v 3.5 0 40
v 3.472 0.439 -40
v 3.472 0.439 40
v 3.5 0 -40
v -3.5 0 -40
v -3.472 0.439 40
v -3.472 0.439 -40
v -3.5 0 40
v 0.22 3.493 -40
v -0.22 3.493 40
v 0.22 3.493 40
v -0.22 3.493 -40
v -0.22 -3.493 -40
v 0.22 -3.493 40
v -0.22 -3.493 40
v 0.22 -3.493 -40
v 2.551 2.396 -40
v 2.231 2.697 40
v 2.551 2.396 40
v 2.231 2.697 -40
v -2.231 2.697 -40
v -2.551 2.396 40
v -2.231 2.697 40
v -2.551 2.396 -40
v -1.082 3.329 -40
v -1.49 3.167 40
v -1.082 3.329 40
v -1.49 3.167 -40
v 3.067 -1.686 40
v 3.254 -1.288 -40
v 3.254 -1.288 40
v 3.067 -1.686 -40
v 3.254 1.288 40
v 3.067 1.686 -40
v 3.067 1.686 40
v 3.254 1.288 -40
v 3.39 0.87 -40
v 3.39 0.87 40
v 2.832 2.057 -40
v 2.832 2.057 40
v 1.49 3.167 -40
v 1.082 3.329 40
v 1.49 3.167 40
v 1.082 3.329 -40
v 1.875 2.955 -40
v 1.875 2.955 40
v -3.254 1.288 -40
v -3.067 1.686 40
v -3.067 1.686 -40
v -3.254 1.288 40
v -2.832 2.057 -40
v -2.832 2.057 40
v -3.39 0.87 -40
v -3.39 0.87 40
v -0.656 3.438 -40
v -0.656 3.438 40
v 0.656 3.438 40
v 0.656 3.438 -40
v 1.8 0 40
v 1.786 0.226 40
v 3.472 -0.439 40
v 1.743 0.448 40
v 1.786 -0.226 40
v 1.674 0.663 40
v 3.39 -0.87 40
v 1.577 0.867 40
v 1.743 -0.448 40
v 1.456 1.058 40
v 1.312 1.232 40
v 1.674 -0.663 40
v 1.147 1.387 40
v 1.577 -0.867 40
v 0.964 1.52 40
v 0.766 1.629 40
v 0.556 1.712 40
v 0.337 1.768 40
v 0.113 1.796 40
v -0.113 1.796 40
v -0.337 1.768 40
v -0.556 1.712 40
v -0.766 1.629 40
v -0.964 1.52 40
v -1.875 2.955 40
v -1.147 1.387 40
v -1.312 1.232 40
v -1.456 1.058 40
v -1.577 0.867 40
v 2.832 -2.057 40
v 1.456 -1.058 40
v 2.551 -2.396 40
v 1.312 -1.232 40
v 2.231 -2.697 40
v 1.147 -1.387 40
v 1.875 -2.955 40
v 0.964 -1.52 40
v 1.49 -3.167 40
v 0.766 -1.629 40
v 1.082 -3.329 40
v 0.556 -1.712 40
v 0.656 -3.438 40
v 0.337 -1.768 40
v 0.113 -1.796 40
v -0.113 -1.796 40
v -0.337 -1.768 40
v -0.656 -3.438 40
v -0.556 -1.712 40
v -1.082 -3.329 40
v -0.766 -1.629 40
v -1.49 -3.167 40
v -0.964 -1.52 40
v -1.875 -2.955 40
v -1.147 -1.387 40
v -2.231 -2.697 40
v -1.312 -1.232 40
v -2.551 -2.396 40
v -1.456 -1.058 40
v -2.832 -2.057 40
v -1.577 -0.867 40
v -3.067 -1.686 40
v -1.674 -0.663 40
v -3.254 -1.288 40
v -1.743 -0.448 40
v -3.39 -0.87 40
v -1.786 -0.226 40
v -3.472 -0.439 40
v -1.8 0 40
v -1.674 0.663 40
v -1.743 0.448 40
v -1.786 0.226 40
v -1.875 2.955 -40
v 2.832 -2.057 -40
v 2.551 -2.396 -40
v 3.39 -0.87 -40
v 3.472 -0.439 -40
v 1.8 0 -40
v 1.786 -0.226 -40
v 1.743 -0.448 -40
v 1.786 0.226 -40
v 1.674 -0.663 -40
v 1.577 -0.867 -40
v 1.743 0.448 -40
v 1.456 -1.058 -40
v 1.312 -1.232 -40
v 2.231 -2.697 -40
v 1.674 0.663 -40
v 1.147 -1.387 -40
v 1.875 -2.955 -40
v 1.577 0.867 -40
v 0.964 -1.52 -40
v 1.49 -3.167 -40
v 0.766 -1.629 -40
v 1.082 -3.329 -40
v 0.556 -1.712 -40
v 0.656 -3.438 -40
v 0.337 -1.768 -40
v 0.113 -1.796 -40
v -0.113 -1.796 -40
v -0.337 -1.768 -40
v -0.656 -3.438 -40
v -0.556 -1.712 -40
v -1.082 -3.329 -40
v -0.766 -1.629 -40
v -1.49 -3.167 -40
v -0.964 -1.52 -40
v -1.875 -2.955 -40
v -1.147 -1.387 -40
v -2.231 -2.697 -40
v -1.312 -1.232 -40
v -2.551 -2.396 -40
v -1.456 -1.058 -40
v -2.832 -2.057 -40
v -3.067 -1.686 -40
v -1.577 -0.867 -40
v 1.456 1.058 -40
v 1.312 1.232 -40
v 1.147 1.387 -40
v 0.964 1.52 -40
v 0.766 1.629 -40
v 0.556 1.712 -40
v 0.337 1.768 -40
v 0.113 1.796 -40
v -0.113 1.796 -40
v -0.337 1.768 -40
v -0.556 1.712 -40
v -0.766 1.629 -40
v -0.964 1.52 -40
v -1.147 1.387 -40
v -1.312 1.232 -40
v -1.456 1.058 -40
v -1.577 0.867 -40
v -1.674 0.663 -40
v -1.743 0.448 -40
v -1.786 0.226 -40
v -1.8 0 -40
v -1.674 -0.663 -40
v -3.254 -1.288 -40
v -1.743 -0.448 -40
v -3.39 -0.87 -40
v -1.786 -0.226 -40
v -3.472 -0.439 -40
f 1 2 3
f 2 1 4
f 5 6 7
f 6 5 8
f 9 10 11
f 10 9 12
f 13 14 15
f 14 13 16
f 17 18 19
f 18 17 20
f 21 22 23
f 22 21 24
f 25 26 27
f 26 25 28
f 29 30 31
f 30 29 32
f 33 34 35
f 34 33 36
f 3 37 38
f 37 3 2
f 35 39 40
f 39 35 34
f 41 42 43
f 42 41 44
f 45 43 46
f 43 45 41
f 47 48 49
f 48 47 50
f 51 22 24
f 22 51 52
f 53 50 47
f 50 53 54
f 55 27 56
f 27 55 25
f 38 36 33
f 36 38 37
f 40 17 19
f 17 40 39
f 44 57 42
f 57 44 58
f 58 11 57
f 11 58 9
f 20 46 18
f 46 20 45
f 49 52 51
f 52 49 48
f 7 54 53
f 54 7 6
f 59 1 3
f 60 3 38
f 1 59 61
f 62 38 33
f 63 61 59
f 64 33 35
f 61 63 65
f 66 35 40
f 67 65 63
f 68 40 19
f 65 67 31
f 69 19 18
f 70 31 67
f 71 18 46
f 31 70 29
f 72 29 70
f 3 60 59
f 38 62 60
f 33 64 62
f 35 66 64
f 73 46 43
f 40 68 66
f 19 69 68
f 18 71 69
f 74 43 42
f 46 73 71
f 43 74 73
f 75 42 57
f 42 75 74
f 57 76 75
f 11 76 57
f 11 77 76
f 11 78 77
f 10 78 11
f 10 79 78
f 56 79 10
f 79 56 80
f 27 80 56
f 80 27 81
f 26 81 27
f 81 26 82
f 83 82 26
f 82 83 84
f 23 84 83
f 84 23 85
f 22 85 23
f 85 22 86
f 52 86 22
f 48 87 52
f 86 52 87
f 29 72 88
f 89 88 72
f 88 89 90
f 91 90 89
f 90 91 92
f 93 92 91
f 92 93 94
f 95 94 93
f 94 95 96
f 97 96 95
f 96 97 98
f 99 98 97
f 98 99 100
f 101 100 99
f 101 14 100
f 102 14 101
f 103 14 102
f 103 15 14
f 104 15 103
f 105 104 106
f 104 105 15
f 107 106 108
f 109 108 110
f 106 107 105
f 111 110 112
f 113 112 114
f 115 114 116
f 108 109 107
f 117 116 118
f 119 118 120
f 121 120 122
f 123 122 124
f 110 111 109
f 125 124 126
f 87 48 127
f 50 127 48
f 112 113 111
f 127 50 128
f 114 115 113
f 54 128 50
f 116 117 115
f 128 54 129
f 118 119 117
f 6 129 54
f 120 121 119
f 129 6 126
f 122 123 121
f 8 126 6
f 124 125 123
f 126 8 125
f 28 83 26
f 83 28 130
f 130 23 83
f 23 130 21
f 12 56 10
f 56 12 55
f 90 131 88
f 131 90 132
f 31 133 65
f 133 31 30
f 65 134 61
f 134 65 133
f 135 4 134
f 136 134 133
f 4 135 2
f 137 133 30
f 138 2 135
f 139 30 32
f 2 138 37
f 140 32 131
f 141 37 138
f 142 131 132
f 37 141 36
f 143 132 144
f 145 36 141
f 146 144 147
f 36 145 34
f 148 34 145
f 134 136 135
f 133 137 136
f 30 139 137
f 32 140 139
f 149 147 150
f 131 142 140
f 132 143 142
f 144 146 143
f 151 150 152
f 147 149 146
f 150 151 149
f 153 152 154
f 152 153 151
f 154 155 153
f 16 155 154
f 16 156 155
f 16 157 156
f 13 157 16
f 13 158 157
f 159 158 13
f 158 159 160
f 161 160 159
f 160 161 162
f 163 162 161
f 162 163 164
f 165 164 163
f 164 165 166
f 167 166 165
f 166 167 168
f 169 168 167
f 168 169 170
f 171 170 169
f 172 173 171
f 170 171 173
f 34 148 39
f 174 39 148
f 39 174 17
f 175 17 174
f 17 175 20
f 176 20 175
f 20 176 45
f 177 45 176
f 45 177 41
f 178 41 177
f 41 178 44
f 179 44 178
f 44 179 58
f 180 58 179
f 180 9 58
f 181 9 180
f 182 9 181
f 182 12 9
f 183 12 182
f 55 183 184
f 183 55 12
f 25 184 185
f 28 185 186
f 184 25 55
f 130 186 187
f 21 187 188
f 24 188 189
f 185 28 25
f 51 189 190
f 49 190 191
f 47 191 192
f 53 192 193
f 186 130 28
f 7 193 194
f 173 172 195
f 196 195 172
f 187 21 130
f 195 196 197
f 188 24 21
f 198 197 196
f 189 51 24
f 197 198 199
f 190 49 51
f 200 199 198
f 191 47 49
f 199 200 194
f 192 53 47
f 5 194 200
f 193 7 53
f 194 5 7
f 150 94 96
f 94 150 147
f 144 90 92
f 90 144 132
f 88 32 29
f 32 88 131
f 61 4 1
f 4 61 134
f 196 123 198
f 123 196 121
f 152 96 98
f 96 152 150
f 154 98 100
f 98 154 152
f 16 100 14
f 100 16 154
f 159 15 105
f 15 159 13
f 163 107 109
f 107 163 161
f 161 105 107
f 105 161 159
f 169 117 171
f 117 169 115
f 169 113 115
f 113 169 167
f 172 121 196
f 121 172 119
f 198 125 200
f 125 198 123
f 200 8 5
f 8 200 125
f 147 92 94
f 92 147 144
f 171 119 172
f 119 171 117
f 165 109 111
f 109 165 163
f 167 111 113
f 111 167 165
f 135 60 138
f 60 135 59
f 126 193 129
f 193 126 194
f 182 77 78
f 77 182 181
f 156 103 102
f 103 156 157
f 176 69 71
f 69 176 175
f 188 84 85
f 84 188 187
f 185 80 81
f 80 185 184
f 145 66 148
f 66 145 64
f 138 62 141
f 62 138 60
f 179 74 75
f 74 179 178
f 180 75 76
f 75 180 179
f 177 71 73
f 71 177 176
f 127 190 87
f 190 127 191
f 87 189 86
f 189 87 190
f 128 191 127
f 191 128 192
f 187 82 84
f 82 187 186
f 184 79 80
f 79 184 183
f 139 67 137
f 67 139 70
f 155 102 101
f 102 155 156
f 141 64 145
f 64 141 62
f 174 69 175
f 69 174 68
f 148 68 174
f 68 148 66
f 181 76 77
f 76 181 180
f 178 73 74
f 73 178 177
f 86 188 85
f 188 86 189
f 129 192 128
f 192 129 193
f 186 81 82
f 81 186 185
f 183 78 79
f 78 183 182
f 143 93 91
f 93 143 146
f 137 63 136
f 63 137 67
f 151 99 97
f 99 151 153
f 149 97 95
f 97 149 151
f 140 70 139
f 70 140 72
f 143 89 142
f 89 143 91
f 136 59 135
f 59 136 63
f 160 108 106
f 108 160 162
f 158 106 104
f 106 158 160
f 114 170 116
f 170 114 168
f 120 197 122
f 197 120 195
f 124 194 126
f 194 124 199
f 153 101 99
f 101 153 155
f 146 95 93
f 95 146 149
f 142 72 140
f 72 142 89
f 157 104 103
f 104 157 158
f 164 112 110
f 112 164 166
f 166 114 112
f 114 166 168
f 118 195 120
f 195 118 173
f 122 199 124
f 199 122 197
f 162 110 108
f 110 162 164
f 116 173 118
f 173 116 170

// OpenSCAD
$fn = 50;


difference() {
	union() {
		translate(v = [0, 0, -40.0000000000]) {
			cylinder(h = 80, r = 3.5000000000);
		}
	}
	union() {
		translate(v = [0, 0, -100.0000000000]) {
			cylinder(h = 200, r = 1.8000000000);
		}
	}
}
